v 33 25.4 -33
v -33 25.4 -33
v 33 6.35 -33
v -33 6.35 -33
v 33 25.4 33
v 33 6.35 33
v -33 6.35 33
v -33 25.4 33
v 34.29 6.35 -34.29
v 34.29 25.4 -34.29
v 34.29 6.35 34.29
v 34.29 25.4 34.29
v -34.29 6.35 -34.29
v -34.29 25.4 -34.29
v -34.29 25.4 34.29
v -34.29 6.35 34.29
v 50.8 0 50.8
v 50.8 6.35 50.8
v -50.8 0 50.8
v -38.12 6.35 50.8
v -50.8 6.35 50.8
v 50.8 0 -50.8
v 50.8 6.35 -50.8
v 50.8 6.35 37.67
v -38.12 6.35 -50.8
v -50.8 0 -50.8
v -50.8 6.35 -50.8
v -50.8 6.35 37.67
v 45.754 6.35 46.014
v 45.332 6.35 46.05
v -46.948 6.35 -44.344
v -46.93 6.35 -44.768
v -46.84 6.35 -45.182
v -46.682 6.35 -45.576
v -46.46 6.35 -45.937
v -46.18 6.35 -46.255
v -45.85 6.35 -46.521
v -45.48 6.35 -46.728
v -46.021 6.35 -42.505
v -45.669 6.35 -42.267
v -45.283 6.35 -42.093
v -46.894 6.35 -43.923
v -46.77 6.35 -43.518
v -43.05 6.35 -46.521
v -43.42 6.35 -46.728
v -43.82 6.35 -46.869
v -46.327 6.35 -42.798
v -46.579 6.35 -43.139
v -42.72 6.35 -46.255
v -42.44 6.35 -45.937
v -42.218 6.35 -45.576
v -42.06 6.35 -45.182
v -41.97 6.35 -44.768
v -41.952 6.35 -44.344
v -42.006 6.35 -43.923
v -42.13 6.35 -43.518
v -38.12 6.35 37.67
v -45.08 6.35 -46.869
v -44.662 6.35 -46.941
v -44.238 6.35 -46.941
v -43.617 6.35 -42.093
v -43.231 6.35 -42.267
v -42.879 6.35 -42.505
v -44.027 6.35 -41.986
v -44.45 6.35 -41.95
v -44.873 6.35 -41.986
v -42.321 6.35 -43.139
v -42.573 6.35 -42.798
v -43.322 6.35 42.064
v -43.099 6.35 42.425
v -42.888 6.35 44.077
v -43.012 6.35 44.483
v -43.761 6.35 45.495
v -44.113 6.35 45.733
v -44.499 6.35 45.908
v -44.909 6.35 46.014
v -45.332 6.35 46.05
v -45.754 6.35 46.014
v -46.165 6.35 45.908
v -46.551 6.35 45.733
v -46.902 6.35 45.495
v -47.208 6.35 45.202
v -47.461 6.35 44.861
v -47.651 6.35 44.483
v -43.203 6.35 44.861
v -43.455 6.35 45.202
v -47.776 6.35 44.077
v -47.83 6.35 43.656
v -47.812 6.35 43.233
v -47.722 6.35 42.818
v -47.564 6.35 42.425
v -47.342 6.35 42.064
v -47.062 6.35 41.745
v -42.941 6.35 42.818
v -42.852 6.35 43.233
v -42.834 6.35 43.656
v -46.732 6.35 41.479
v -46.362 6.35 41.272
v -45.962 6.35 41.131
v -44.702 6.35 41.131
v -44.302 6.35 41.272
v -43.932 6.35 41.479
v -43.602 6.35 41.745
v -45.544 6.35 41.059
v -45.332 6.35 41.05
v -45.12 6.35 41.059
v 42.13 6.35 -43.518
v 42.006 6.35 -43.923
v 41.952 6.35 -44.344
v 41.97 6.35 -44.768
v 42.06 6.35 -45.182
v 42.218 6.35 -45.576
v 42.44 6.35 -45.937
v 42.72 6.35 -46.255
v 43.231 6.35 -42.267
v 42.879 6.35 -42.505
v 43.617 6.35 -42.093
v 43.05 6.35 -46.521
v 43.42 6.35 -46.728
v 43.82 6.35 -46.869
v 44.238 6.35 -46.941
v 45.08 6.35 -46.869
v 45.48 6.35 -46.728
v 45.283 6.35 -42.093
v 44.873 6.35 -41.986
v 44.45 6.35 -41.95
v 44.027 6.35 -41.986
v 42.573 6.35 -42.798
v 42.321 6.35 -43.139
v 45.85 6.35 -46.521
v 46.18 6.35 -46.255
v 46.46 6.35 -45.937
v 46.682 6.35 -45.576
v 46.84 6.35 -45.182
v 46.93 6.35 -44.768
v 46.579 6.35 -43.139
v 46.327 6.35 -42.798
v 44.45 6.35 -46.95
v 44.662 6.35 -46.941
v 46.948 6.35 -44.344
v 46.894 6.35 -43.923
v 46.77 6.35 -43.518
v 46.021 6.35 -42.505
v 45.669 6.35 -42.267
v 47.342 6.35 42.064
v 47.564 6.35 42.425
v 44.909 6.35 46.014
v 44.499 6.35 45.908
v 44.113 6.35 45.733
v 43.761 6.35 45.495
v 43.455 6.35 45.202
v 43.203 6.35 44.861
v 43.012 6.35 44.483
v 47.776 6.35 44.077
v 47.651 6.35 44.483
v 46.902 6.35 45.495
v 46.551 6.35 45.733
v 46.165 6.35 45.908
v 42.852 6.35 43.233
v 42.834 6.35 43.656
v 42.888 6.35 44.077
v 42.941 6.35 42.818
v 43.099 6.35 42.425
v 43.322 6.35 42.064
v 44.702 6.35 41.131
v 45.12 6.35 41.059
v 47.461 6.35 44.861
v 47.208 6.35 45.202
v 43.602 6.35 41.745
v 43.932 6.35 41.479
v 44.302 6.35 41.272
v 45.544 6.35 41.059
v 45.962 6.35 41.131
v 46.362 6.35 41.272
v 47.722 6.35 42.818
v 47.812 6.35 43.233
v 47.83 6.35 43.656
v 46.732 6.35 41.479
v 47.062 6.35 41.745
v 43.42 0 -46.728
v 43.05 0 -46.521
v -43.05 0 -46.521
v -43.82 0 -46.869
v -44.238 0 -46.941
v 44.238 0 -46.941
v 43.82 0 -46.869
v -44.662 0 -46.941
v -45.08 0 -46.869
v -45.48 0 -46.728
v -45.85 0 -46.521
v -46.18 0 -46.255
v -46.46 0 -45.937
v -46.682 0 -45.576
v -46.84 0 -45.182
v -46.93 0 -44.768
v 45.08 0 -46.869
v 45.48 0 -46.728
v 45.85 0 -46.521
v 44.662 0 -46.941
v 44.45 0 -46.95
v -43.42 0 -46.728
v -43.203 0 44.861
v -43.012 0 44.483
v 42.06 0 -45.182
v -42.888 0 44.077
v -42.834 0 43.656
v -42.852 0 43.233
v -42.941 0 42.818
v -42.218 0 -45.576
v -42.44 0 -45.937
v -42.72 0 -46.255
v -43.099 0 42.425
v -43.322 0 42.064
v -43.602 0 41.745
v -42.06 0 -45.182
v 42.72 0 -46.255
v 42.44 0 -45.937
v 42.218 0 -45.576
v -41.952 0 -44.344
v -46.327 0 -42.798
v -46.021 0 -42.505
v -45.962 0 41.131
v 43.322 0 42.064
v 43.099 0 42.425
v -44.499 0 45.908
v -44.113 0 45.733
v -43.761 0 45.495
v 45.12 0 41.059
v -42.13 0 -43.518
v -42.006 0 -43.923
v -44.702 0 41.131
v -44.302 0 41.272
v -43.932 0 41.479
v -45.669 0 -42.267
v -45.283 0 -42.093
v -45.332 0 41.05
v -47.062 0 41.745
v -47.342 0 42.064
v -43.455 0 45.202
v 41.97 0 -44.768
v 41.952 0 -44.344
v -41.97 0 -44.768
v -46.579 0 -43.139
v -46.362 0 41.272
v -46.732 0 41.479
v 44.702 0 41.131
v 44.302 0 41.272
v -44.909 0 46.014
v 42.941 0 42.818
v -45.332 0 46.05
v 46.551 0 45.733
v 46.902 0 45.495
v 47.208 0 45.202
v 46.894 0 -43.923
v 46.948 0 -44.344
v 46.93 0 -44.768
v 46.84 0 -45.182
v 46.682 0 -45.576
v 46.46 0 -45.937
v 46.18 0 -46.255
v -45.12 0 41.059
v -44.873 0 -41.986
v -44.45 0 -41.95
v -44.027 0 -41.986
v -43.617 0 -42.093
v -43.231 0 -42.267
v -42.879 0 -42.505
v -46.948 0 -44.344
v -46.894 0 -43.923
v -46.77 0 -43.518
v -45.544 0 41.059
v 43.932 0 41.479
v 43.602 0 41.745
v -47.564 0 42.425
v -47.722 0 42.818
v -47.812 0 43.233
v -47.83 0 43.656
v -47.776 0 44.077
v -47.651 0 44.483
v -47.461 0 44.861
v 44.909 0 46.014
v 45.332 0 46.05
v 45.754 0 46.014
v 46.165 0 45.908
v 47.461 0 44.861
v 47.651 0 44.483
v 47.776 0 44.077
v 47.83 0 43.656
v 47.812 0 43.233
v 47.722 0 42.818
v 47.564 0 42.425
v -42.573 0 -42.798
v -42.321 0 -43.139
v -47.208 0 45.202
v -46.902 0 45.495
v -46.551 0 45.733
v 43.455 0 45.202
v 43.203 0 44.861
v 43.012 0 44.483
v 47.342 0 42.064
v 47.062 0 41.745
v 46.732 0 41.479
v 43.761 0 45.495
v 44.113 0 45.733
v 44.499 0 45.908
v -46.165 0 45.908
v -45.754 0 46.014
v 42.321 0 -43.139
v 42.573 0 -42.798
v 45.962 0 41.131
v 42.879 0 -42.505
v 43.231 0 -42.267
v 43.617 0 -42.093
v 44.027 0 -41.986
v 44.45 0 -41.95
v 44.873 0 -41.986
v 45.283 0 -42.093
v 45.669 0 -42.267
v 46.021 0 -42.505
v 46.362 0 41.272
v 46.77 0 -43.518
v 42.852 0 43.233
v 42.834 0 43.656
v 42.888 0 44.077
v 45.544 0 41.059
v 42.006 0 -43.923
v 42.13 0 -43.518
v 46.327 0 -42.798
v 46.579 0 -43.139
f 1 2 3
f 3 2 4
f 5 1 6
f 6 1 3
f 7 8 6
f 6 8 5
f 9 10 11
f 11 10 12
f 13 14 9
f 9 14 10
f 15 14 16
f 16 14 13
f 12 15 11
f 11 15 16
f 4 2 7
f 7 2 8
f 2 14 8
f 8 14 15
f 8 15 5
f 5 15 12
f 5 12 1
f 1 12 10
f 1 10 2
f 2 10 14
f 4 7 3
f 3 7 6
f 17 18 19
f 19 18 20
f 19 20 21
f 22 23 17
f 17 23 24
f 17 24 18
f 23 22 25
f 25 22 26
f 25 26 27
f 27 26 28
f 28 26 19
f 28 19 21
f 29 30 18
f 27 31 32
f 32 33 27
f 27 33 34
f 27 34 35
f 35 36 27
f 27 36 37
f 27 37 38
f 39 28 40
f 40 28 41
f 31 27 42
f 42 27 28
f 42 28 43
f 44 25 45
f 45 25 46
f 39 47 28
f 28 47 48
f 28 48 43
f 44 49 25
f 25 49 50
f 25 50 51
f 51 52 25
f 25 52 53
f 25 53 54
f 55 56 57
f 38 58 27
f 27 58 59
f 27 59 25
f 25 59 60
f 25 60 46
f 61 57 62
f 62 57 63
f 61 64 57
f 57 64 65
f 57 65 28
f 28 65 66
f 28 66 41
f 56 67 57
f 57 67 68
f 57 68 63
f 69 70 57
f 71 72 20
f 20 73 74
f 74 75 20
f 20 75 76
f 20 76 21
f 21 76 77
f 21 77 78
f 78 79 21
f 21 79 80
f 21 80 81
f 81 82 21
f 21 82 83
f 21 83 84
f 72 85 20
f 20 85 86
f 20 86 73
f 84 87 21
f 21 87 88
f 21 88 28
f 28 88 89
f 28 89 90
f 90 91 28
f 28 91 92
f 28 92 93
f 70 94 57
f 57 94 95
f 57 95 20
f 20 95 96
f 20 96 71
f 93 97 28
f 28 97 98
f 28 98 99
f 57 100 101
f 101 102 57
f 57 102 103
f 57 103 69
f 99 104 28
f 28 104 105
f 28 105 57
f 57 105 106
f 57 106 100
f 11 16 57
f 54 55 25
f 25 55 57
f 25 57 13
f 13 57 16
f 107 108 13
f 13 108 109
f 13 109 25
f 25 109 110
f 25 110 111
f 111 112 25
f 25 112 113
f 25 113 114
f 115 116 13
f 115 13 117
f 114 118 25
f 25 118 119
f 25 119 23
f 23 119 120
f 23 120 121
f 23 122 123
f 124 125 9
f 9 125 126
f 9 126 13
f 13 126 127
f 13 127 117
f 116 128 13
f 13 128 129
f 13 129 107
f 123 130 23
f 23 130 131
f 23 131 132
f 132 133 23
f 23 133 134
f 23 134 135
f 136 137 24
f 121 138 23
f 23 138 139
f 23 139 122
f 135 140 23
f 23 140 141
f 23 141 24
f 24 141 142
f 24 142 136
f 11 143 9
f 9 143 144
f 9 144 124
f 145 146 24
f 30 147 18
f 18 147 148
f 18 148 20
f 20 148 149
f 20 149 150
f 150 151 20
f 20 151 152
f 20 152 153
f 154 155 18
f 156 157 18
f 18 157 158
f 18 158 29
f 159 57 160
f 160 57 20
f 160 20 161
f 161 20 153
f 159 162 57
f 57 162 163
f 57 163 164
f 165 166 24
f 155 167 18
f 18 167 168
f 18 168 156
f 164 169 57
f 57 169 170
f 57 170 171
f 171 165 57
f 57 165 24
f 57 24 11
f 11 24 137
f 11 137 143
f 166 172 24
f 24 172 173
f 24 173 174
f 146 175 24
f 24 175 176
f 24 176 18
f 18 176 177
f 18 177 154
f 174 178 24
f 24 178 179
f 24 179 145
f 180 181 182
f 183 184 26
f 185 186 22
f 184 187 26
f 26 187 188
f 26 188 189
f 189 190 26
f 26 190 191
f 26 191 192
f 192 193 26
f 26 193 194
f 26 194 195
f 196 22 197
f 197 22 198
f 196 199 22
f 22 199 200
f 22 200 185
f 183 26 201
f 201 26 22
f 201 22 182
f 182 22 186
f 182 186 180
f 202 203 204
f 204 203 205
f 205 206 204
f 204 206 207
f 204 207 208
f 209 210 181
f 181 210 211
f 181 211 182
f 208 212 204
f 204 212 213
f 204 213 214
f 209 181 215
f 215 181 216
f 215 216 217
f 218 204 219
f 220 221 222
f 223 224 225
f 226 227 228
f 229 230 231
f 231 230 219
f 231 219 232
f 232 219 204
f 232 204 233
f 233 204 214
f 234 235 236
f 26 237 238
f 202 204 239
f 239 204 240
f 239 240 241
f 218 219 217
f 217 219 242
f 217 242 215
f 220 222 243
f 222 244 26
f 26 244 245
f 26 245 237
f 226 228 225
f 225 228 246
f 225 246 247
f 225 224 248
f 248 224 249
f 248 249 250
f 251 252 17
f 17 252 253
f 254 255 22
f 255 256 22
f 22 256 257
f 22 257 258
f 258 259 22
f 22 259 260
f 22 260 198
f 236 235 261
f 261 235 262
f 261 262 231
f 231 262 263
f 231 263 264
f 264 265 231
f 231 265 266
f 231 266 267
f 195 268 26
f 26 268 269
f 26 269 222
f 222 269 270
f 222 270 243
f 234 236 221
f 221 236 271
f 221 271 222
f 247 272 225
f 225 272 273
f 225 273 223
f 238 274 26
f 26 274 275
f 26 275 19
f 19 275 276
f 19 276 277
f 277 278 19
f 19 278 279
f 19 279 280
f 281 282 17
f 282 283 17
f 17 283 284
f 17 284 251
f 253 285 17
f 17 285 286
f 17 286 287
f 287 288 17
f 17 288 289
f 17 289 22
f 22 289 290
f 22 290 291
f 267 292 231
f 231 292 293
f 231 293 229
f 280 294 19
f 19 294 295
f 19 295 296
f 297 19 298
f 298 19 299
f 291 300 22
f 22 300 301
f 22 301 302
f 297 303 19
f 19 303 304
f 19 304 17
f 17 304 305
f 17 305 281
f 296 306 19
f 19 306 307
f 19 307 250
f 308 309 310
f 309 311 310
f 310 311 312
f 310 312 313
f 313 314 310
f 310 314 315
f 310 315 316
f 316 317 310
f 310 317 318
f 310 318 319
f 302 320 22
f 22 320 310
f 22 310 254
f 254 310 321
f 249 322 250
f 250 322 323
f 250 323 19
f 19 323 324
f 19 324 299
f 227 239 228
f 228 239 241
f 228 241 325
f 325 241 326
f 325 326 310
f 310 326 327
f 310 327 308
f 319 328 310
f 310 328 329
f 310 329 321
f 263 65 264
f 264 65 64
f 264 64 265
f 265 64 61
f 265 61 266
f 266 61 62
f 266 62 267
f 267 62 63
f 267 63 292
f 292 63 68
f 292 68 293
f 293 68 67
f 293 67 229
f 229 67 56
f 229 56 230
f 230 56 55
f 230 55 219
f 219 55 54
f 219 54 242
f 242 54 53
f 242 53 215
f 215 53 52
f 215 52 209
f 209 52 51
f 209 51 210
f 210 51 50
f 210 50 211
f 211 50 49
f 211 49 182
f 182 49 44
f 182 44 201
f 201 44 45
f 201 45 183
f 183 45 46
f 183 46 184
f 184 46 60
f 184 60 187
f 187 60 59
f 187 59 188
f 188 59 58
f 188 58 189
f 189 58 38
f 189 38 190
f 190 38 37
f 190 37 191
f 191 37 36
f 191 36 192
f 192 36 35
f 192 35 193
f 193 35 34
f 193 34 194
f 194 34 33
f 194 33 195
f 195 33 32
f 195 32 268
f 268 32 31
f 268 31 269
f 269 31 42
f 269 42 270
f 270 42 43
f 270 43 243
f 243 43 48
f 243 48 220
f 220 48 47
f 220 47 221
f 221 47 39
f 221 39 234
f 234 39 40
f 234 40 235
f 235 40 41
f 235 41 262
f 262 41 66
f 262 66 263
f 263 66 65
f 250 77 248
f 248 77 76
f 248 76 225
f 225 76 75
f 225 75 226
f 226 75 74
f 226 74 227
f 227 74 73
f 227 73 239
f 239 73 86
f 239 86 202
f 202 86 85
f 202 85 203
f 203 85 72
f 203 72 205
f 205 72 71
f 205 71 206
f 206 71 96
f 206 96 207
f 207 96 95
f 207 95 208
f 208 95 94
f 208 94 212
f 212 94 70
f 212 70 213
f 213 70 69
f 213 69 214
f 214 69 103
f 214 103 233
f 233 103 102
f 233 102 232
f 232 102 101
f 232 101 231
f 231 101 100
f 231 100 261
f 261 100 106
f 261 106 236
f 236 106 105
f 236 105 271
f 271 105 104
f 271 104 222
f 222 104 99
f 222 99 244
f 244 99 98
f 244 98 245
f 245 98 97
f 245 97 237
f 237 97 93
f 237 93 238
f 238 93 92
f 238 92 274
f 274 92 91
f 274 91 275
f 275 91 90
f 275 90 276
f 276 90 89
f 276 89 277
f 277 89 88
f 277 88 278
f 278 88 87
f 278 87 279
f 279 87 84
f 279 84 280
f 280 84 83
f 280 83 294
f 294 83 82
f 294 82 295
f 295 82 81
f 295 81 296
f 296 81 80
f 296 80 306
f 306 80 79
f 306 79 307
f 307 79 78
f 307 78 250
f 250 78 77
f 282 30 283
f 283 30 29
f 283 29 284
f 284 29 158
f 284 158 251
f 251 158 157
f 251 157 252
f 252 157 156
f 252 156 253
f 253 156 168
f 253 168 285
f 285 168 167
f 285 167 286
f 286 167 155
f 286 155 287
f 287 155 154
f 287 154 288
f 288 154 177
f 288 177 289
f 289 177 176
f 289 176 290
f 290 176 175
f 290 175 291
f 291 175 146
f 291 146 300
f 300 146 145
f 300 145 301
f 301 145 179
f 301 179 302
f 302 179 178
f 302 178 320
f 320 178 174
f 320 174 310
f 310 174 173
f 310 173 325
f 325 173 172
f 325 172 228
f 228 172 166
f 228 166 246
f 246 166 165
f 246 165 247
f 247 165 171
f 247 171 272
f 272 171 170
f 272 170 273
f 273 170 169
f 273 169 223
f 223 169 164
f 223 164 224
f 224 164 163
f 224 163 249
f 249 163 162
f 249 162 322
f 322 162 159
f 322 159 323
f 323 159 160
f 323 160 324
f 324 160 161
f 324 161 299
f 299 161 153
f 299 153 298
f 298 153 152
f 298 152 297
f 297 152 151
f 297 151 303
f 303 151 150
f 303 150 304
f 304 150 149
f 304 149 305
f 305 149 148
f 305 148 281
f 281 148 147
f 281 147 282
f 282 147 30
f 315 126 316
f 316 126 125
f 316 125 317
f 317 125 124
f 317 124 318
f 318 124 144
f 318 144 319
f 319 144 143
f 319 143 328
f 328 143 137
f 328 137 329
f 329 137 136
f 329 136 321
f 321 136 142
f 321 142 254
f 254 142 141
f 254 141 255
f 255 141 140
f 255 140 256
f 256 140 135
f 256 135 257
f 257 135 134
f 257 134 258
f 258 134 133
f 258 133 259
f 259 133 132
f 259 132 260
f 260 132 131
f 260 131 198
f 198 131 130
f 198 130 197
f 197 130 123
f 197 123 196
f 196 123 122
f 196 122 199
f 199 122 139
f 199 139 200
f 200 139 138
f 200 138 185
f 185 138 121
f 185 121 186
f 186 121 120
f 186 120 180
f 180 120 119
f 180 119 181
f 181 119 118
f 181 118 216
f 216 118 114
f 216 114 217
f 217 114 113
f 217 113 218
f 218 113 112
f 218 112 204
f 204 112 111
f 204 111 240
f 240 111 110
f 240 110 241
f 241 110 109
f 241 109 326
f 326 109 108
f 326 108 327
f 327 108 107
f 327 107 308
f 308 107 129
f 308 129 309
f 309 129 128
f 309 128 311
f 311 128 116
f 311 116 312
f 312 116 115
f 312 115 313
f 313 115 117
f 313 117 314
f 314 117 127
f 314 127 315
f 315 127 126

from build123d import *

# Parameters (mm, degrees)
SKETCH1_W           = 68.58
SKETCH1_H           = 68.58
SKETCH1_W_2         = 66
SKETCH1_H_2         = 66
BOSS_EXTRUDE1_DEPTH = 25.4
SKETCH2_W           = 101.6
SKETCH2_H           = 101.6
BOSS_EXTRUDE2_DEPTH = 6.35
SKETCH3_R           = 2.5
CUT_EXTRUDE1_DEPTH  = 7.35


with BuildPart() as part:
    # Sketch1 → Boss-Extrude1 (new body)
    with BuildSketch(Plane(origin=(0, 0, 0), x_dir=(1, 0, 0), z_dir=(0, 1, 0))):
        Rectangle(SKETCH1_W, SKETCH1_H)
        Rectangle(SKETCH1_W_2, SKETCH1_H_2, mode=Mode.SUBTRACT)
    extrude(amount=BOSS_EXTRUDE1_DEPTH)

    # Sketch2 → Boss-Extrude2 (add)
    with BuildSketch(Plane(origin=(0, 0, 0), x_dir=(1, 0, 0), z_dir=(0, 1, 0))):
        Rectangle(SKETCH2_W, SKETCH2_H)
    extrude(amount=BOSS_EXTRUDE2_DEPTH)

    # Sketch3 → Cut-Extrude1 (cut, through all)
    with BuildSketch(Plane(origin=(0, 6.35, 0), x_dir=(1, 0, 0), z_dir=(0, 1, 0))):
        with Locations((-44.45, 44.45)):
            Circle(SKETCH3_R)
        with Locations((-45.331774214, -43.550375964)):
            Circle(SKETCH3_R)
        with Locations((45.331774214, -43.550375964)):
            Circle(SKETCH3_R)
        with Locations((44.45, 44.45)):
            Circle(SKETCH3_R)
    extrude(amount=-CUT_EXTRUDE1_DEPTH, mode=Mode.SUBTRACT)


solid = part.part
